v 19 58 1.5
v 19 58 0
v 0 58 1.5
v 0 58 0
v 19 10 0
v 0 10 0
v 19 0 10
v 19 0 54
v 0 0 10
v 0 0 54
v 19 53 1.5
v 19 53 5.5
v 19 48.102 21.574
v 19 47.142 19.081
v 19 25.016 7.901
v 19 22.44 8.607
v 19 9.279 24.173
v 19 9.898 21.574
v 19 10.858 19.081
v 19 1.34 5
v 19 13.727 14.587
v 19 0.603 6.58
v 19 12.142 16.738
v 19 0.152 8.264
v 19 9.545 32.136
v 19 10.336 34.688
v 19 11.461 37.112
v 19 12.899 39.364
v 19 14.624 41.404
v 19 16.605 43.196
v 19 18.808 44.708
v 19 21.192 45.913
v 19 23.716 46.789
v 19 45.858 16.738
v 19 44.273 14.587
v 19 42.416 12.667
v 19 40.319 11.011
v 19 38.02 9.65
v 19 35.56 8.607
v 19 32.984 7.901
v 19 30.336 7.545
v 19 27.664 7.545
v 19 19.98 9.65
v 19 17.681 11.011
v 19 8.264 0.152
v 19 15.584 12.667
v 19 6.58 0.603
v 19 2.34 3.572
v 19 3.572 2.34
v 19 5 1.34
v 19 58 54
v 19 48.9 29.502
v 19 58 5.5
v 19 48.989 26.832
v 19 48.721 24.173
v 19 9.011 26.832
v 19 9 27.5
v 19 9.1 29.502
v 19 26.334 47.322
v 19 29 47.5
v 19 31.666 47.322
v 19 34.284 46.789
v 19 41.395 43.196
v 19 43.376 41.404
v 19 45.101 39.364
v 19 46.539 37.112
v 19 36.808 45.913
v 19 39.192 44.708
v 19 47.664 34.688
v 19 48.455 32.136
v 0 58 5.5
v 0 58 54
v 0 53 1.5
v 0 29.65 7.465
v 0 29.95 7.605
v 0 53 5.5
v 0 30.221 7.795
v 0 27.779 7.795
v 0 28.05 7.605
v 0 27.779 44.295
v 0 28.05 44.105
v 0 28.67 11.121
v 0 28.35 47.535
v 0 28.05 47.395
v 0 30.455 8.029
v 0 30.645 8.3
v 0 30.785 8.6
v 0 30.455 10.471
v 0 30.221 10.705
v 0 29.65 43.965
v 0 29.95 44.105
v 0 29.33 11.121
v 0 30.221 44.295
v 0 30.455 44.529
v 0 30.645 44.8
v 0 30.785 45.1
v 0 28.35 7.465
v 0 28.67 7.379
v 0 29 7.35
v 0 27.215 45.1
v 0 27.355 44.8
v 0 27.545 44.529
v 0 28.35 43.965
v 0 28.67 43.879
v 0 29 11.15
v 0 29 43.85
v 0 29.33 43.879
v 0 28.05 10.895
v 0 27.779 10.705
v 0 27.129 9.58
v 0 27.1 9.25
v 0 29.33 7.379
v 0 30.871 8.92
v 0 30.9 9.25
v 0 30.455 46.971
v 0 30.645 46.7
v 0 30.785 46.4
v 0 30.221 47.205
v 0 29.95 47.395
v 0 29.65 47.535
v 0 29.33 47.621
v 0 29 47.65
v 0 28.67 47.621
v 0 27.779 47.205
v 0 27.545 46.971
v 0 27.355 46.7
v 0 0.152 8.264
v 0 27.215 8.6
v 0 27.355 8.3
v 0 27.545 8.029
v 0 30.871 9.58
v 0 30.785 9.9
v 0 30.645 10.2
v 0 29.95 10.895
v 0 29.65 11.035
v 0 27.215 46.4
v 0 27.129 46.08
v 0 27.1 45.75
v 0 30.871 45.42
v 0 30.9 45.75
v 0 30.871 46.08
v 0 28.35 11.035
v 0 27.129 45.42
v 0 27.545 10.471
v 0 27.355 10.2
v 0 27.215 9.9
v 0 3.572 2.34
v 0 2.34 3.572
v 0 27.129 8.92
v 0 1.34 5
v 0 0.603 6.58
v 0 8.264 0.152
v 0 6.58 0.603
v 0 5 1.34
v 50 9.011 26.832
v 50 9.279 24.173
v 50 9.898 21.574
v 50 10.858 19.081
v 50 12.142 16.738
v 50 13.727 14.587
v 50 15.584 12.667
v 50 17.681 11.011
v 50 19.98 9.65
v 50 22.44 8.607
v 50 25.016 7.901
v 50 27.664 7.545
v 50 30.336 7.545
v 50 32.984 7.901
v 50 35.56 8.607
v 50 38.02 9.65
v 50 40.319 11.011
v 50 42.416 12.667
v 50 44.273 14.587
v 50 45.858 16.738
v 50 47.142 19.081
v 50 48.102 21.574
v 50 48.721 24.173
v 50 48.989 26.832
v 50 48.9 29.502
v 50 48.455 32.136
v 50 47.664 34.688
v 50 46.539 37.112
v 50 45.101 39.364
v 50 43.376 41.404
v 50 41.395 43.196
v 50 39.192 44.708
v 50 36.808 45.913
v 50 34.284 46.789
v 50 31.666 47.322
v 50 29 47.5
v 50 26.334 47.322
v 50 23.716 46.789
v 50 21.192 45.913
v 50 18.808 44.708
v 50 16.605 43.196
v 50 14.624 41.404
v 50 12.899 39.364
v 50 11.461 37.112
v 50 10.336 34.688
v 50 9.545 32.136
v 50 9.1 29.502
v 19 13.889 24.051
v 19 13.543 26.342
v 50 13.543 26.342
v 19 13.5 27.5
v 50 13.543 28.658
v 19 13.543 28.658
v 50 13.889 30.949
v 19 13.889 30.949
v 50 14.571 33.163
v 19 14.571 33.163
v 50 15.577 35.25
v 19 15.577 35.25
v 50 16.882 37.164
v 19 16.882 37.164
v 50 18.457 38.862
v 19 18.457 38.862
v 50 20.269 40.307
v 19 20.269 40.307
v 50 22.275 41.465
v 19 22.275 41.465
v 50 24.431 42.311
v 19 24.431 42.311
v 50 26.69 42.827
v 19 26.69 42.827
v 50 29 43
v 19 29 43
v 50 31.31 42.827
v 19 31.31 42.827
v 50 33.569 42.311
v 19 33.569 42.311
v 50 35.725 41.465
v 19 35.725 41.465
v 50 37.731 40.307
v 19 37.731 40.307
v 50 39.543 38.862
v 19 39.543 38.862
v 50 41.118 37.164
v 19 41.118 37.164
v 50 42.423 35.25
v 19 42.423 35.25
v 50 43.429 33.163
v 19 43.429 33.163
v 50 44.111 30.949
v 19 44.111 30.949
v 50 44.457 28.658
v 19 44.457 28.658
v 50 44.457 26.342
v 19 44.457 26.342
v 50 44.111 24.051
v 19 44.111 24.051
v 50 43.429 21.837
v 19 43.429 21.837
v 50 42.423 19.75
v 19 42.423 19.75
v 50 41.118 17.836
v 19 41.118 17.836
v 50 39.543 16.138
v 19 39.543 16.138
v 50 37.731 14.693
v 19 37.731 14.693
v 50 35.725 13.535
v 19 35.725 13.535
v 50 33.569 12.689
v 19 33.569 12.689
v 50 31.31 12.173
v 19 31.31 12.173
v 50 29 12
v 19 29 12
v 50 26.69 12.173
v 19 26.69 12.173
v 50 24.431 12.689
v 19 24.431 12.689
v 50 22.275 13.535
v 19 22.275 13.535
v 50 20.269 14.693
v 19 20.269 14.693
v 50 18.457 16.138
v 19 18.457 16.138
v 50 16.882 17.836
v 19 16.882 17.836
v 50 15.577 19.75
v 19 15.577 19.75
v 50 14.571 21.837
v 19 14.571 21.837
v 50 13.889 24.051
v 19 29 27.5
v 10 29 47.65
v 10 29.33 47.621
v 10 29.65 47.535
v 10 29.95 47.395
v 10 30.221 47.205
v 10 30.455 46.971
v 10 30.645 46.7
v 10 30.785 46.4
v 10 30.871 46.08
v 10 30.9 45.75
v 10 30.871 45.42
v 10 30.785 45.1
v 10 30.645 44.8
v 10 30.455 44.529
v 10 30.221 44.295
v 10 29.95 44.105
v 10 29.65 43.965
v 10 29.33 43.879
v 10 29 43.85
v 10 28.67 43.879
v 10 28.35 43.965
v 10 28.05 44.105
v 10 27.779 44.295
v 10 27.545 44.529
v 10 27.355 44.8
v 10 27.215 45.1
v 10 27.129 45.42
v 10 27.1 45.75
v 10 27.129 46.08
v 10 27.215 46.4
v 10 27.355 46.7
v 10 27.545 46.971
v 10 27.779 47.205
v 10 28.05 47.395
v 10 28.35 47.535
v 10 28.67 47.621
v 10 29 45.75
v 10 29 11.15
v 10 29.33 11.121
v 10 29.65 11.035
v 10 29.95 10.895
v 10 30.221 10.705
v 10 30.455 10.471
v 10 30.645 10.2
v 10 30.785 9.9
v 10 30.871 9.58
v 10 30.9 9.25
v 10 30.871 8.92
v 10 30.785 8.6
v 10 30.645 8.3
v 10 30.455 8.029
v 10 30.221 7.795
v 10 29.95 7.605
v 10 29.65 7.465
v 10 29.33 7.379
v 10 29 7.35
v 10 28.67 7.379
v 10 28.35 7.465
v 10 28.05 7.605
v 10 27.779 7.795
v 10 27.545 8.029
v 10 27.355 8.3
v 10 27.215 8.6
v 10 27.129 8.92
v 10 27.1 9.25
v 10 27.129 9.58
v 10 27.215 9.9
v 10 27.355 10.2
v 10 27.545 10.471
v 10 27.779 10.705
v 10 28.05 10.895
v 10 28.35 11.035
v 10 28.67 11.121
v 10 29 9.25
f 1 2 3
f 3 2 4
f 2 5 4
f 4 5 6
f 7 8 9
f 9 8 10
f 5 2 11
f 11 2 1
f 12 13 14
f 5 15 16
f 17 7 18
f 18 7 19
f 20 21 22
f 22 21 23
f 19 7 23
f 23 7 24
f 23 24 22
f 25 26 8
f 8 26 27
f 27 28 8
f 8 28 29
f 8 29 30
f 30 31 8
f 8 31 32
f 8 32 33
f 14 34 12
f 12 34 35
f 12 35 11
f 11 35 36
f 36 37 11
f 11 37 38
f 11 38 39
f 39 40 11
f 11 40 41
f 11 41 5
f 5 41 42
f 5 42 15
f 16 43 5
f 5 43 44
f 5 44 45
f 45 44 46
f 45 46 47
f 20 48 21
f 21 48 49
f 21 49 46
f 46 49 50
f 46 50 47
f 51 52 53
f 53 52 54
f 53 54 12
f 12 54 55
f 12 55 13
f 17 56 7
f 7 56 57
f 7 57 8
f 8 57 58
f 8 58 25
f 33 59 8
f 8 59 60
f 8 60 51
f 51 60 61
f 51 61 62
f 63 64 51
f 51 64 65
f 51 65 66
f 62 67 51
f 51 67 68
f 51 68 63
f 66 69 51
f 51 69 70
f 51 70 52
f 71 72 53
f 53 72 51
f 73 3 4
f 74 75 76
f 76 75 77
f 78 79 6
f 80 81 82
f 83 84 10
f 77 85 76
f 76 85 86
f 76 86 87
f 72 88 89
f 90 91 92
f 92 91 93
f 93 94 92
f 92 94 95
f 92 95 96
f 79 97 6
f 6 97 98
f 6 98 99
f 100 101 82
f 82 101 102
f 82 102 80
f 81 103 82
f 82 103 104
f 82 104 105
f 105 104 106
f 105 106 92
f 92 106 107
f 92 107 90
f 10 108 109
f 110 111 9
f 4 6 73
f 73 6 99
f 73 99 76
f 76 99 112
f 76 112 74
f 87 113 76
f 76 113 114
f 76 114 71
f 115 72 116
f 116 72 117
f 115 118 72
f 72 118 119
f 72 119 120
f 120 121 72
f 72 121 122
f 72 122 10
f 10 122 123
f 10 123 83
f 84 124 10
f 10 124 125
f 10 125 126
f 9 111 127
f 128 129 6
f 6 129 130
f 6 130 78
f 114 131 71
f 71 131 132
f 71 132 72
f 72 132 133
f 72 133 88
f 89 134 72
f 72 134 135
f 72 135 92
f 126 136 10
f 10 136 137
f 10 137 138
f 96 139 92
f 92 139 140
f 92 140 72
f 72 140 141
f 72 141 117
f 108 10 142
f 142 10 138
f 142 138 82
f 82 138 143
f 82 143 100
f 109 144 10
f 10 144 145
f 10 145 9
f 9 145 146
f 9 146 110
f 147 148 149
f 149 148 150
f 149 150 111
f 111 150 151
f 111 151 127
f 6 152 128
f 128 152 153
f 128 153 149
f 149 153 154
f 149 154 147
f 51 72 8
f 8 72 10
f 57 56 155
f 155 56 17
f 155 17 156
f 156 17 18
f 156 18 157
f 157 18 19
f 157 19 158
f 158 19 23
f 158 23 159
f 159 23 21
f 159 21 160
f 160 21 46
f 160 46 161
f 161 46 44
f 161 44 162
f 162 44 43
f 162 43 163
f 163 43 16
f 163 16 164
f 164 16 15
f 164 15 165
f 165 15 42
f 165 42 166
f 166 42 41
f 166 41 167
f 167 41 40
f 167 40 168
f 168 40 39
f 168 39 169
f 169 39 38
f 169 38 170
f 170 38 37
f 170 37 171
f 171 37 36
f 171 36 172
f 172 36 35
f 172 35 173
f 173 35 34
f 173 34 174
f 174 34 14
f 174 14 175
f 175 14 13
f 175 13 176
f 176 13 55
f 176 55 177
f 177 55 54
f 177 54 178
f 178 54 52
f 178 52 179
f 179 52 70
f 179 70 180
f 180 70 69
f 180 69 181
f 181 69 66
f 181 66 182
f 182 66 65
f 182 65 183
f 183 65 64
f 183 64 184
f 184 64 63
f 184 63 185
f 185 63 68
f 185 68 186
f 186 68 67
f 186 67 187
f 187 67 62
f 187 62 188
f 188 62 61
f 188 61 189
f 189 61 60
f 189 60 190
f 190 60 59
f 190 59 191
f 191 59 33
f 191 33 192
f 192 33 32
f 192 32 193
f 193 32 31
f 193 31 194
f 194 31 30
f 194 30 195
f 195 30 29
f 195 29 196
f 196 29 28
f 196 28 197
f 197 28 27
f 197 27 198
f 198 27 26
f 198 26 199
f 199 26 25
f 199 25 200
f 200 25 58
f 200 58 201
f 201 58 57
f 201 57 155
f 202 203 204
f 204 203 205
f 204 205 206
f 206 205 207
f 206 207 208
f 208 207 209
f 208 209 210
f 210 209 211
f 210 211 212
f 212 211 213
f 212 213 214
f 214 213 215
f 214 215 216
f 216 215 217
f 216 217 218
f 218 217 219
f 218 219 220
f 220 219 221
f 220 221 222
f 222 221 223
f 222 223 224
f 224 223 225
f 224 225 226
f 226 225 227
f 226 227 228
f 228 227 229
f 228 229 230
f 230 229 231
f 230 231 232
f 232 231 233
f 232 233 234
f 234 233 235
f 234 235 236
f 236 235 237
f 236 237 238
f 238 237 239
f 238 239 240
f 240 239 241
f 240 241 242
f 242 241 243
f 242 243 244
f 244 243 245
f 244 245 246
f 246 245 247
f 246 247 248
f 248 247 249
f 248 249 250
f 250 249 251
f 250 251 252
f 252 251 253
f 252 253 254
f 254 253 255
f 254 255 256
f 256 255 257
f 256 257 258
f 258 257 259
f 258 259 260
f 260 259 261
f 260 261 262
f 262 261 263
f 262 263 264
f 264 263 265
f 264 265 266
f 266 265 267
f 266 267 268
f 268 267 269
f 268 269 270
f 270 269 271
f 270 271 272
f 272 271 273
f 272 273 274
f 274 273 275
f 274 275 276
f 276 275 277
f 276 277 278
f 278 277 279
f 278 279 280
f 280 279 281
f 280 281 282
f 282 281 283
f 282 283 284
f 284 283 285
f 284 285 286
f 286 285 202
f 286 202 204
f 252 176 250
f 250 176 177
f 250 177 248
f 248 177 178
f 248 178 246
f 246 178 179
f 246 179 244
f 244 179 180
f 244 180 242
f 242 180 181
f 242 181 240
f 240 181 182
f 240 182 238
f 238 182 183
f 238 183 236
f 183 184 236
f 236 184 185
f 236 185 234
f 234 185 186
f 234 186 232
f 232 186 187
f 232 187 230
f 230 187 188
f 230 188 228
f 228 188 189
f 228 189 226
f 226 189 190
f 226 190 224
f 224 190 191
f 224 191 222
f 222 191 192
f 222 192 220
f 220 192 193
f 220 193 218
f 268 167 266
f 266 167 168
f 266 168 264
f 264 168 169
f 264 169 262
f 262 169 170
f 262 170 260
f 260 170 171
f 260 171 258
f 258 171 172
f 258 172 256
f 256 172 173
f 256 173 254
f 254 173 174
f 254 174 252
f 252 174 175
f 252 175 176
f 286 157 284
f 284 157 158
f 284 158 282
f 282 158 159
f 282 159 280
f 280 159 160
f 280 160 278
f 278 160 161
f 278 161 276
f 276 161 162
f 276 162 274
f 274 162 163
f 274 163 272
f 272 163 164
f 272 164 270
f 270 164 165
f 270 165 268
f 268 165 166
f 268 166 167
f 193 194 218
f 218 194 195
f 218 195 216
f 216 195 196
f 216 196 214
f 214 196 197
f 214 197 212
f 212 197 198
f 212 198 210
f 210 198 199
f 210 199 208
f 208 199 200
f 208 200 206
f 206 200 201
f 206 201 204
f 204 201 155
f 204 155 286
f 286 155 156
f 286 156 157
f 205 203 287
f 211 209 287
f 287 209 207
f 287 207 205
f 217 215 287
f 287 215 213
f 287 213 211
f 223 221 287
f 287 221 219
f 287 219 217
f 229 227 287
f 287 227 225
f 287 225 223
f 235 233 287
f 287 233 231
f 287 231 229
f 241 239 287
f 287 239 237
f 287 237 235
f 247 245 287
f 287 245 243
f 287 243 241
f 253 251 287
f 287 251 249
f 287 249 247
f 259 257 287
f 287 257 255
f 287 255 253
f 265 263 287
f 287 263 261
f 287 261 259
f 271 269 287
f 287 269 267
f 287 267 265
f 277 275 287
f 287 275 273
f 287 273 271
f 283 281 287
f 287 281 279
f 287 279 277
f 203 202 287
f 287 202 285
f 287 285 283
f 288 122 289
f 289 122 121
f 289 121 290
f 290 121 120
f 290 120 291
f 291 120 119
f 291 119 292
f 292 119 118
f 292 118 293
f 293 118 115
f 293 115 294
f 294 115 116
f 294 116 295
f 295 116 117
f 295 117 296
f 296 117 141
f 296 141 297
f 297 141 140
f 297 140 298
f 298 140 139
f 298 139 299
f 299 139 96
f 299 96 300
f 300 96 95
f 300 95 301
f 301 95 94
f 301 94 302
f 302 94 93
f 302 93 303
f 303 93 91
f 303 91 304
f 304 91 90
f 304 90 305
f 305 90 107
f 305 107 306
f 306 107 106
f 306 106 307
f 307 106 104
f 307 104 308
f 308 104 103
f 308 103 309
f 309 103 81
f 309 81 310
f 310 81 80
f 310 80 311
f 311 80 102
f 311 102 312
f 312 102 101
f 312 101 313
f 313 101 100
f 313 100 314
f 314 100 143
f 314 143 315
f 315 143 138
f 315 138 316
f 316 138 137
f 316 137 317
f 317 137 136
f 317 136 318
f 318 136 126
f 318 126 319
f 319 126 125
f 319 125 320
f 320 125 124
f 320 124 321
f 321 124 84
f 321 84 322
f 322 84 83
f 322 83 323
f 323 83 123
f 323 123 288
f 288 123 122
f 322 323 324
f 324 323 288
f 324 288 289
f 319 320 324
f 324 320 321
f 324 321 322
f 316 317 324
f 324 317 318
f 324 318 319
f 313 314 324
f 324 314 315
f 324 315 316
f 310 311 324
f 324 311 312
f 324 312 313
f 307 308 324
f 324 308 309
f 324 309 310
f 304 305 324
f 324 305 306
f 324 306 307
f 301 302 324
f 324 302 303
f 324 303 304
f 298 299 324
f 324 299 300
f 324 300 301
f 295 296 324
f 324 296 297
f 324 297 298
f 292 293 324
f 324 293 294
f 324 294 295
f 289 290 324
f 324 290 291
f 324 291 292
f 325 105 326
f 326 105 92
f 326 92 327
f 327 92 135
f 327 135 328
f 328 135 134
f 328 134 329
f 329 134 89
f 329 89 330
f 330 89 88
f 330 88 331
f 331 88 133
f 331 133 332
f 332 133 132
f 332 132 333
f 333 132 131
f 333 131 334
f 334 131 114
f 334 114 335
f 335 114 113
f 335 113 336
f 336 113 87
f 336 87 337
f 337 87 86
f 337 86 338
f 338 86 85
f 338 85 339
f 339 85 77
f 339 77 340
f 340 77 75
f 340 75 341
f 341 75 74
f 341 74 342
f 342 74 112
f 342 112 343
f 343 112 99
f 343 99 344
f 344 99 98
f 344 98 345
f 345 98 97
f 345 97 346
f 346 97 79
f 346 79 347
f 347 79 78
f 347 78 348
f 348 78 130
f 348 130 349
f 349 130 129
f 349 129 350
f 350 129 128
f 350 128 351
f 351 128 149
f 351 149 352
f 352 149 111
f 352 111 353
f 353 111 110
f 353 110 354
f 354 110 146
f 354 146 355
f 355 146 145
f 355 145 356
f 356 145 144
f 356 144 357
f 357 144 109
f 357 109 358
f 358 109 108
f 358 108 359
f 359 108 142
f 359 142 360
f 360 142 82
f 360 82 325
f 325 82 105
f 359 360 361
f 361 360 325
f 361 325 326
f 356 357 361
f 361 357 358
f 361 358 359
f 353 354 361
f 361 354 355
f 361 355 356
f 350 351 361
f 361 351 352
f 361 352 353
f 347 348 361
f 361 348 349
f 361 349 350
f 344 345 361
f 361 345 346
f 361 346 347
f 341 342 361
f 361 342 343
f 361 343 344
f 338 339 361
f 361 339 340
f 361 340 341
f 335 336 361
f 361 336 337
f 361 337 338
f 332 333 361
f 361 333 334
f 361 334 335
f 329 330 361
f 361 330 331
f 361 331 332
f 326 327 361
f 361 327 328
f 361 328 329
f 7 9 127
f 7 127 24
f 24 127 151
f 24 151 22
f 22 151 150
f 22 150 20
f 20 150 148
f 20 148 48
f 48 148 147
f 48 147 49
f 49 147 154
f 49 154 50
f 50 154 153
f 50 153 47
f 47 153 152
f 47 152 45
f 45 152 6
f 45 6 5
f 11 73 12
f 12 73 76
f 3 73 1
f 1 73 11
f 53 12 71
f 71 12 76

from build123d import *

# Parameters (mm, degrees)
SKETCH1_W           = 19
SKETCH1_H           = 58
BOSS_EXTRUDE1_DEPTH = 54
SKETCH2_3_R         = 20
SKETCH2_3_R_2       = 15.5
BOSS_EXTRUDE2_DEPTH = 50
SKETCH2_R           = 1.9
CUT_EXTRUDE1_DEPTH  = 10
FILLET1_R           = 10
BOSS_EXTRUDE3_DEPTH = 50
SKETCH4_R           = 1.25
CUT_EXTRUDE2_DEPTH  = 55
SKETCH5_W           = 17
SKETCH5_H           = 14
CUT_EXTRUDE3_DEPTH  = 2
SKETCH6_W           = 19
SKETCH6_H           = 4
CUT_EXTRUDE4_DEPTH  = 5
SKETCH7_W           = 17
SKETCH7_H           = 14
CUT_EXTRUDE5_DEPTH  = 53


with BuildPart() as part:
    # Sketch1 → Boss-Extrude1 (new body)
    with BuildSketch(Plane.XY):
        with Locations((9.5, 29)):
            Rectangle(SKETCH1_W, SKETCH1_H)
    extrude(amount=BOSS_EXTRUDE1_DEPTH)

    # Sketch2<3> → Boss-Extrude2 (add)
    with BuildSketch(Plane.ZY):
        with Locations((27.5, 29)):
            Circle(SKETCH2_3_R)
        with Locations((27.5, 29)):
            Circle(SKETCH2_3_R_2, mode=Mode.SUBTRACT)
    extrude(amount=-BOSS_EXTRUDE2_DEPTH)

    # Sketch2 → Cut-Extrude1 (cut)
    with BuildSketch(Plane.ZY):
        with Locations((9.25, 29)):
            Circle(SKETCH2_R)
        with Locations((45.75, 29)):
            Circle(SKETCH2_R)
    extrude(amount=-CUT_EXTRUDE1_DEPTH, mode=Mode.SUBTRACT)

    # Fillet1
    fillet1_edges = [part.edges().sort_by_distance(p)[0] for p in [
        (9.5, 0, 0),
    ]]
    fillet(fillet1_edges, radius=FILLET1_R)

    # Sketch3 → Boss-Extrude3 (add)
    with BuildSketch(Plane(origin=(0, 0, 0), x_dir=(0, 0, -1), z_dir=(1, 0, 0))):
        Polygon((0, 0), (0, 57), (0, 67), (-5, 67), (-5, 0), align=None)
    extrude(amount=-BOSS_EXTRUDE3_DEPTH)

    # Sketch4 → Cut-Extrude2 (cut, through all)
    with BuildSketch(Plane(origin=(0, 0, 0), x_dir=(-1, 0, 0), z_dir=(0, 0, -1))):
        with Locations((14, 57)):
            Circle(SKETCH4_R)
        Polygon((0, 53), (0, 0), (50, 0), (50, 67), (17, 67), (17, 53), align=None)
        with Locations((14, 63.5)):
            Circle(SKETCH4_R)
    extrude(amount=-CUT_EXTRUDE2_DEPTH, mode=Mode.SUBTRACT)

    # Sketch5 → Cut-Extrude3 (cut)
    with BuildSketch(Plane(origin=(0, 0, 0), x_dir=(-1, 0, 0), z_dir=(0, 0, -1))):
        with Locations((8.5, 60)):
            Rectangle(SKETCH5_W, SKETCH5_H)
    extrude(amount=-CUT_EXTRUDE3_DEPTH, mode=Mode.SUBTRACT)

    # Sketch6 → Cut-Extrude4 (cut)
    with BuildSketch(Plane(origin=(0, 58, 0), x_dir=(1, 0, 0), z_dir=(0, 1, 0))):
        with Locations((9.5, -3.5)):
            Rectangle(SKETCH6_W, SKETCH6_H)
    extrude(amount=-CUT_EXTRUDE4_DEPTH, mode=Mode.SUBTRACT)

    # Sketch7 → Cut-Extrude5 (cut, through all)
    with BuildSketch(Plane(origin=(0, 0, 2), x_dir=(-1, 0, 0), z_dir=(0, 0, -1))):
        with Locations((8.5, 60)):
            Rectangle(SKETCH7_W, SKETCH7_H)
    extrude(amount=-CUT_EXTRUDE5_DEPTH, mode=Mode.SUBTRACT)


solid = part.part
